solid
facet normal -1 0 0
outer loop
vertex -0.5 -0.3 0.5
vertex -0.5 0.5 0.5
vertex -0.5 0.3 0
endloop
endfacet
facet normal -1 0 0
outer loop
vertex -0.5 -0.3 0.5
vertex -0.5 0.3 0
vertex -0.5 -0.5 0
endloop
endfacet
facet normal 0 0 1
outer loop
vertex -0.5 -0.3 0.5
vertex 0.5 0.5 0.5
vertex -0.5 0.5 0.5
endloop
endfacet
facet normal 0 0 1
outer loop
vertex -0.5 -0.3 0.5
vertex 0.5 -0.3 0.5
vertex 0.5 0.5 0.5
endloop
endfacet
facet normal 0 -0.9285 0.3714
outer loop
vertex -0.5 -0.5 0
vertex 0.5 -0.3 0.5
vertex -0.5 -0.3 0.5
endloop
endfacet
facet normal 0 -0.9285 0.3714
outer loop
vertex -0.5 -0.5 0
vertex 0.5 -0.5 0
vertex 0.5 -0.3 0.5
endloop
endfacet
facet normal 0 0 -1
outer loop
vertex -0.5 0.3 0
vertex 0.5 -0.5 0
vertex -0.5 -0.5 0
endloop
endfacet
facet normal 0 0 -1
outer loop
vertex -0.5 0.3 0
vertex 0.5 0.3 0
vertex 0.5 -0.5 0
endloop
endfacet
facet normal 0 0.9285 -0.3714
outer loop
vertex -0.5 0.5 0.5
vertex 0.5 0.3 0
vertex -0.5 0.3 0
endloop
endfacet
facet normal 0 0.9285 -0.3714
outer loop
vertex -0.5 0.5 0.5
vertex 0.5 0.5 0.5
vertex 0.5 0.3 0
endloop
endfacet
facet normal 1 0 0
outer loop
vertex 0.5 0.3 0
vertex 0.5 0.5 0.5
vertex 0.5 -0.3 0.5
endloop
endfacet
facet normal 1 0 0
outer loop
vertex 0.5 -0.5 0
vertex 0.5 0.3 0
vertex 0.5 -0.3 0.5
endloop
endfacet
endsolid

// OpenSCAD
// Parallelogram Prism for Basic Shapes
// by Slashee the Cow

points = [
    [0,0],
    [0.8,0],
    [1,0.5],
    [0.2,0.5]
    ];

translate([-0.5,-0.5,0])
rotate([90,0,90])
linear_extrude(1)
polygon(points, [[3,2,1,0]]);
